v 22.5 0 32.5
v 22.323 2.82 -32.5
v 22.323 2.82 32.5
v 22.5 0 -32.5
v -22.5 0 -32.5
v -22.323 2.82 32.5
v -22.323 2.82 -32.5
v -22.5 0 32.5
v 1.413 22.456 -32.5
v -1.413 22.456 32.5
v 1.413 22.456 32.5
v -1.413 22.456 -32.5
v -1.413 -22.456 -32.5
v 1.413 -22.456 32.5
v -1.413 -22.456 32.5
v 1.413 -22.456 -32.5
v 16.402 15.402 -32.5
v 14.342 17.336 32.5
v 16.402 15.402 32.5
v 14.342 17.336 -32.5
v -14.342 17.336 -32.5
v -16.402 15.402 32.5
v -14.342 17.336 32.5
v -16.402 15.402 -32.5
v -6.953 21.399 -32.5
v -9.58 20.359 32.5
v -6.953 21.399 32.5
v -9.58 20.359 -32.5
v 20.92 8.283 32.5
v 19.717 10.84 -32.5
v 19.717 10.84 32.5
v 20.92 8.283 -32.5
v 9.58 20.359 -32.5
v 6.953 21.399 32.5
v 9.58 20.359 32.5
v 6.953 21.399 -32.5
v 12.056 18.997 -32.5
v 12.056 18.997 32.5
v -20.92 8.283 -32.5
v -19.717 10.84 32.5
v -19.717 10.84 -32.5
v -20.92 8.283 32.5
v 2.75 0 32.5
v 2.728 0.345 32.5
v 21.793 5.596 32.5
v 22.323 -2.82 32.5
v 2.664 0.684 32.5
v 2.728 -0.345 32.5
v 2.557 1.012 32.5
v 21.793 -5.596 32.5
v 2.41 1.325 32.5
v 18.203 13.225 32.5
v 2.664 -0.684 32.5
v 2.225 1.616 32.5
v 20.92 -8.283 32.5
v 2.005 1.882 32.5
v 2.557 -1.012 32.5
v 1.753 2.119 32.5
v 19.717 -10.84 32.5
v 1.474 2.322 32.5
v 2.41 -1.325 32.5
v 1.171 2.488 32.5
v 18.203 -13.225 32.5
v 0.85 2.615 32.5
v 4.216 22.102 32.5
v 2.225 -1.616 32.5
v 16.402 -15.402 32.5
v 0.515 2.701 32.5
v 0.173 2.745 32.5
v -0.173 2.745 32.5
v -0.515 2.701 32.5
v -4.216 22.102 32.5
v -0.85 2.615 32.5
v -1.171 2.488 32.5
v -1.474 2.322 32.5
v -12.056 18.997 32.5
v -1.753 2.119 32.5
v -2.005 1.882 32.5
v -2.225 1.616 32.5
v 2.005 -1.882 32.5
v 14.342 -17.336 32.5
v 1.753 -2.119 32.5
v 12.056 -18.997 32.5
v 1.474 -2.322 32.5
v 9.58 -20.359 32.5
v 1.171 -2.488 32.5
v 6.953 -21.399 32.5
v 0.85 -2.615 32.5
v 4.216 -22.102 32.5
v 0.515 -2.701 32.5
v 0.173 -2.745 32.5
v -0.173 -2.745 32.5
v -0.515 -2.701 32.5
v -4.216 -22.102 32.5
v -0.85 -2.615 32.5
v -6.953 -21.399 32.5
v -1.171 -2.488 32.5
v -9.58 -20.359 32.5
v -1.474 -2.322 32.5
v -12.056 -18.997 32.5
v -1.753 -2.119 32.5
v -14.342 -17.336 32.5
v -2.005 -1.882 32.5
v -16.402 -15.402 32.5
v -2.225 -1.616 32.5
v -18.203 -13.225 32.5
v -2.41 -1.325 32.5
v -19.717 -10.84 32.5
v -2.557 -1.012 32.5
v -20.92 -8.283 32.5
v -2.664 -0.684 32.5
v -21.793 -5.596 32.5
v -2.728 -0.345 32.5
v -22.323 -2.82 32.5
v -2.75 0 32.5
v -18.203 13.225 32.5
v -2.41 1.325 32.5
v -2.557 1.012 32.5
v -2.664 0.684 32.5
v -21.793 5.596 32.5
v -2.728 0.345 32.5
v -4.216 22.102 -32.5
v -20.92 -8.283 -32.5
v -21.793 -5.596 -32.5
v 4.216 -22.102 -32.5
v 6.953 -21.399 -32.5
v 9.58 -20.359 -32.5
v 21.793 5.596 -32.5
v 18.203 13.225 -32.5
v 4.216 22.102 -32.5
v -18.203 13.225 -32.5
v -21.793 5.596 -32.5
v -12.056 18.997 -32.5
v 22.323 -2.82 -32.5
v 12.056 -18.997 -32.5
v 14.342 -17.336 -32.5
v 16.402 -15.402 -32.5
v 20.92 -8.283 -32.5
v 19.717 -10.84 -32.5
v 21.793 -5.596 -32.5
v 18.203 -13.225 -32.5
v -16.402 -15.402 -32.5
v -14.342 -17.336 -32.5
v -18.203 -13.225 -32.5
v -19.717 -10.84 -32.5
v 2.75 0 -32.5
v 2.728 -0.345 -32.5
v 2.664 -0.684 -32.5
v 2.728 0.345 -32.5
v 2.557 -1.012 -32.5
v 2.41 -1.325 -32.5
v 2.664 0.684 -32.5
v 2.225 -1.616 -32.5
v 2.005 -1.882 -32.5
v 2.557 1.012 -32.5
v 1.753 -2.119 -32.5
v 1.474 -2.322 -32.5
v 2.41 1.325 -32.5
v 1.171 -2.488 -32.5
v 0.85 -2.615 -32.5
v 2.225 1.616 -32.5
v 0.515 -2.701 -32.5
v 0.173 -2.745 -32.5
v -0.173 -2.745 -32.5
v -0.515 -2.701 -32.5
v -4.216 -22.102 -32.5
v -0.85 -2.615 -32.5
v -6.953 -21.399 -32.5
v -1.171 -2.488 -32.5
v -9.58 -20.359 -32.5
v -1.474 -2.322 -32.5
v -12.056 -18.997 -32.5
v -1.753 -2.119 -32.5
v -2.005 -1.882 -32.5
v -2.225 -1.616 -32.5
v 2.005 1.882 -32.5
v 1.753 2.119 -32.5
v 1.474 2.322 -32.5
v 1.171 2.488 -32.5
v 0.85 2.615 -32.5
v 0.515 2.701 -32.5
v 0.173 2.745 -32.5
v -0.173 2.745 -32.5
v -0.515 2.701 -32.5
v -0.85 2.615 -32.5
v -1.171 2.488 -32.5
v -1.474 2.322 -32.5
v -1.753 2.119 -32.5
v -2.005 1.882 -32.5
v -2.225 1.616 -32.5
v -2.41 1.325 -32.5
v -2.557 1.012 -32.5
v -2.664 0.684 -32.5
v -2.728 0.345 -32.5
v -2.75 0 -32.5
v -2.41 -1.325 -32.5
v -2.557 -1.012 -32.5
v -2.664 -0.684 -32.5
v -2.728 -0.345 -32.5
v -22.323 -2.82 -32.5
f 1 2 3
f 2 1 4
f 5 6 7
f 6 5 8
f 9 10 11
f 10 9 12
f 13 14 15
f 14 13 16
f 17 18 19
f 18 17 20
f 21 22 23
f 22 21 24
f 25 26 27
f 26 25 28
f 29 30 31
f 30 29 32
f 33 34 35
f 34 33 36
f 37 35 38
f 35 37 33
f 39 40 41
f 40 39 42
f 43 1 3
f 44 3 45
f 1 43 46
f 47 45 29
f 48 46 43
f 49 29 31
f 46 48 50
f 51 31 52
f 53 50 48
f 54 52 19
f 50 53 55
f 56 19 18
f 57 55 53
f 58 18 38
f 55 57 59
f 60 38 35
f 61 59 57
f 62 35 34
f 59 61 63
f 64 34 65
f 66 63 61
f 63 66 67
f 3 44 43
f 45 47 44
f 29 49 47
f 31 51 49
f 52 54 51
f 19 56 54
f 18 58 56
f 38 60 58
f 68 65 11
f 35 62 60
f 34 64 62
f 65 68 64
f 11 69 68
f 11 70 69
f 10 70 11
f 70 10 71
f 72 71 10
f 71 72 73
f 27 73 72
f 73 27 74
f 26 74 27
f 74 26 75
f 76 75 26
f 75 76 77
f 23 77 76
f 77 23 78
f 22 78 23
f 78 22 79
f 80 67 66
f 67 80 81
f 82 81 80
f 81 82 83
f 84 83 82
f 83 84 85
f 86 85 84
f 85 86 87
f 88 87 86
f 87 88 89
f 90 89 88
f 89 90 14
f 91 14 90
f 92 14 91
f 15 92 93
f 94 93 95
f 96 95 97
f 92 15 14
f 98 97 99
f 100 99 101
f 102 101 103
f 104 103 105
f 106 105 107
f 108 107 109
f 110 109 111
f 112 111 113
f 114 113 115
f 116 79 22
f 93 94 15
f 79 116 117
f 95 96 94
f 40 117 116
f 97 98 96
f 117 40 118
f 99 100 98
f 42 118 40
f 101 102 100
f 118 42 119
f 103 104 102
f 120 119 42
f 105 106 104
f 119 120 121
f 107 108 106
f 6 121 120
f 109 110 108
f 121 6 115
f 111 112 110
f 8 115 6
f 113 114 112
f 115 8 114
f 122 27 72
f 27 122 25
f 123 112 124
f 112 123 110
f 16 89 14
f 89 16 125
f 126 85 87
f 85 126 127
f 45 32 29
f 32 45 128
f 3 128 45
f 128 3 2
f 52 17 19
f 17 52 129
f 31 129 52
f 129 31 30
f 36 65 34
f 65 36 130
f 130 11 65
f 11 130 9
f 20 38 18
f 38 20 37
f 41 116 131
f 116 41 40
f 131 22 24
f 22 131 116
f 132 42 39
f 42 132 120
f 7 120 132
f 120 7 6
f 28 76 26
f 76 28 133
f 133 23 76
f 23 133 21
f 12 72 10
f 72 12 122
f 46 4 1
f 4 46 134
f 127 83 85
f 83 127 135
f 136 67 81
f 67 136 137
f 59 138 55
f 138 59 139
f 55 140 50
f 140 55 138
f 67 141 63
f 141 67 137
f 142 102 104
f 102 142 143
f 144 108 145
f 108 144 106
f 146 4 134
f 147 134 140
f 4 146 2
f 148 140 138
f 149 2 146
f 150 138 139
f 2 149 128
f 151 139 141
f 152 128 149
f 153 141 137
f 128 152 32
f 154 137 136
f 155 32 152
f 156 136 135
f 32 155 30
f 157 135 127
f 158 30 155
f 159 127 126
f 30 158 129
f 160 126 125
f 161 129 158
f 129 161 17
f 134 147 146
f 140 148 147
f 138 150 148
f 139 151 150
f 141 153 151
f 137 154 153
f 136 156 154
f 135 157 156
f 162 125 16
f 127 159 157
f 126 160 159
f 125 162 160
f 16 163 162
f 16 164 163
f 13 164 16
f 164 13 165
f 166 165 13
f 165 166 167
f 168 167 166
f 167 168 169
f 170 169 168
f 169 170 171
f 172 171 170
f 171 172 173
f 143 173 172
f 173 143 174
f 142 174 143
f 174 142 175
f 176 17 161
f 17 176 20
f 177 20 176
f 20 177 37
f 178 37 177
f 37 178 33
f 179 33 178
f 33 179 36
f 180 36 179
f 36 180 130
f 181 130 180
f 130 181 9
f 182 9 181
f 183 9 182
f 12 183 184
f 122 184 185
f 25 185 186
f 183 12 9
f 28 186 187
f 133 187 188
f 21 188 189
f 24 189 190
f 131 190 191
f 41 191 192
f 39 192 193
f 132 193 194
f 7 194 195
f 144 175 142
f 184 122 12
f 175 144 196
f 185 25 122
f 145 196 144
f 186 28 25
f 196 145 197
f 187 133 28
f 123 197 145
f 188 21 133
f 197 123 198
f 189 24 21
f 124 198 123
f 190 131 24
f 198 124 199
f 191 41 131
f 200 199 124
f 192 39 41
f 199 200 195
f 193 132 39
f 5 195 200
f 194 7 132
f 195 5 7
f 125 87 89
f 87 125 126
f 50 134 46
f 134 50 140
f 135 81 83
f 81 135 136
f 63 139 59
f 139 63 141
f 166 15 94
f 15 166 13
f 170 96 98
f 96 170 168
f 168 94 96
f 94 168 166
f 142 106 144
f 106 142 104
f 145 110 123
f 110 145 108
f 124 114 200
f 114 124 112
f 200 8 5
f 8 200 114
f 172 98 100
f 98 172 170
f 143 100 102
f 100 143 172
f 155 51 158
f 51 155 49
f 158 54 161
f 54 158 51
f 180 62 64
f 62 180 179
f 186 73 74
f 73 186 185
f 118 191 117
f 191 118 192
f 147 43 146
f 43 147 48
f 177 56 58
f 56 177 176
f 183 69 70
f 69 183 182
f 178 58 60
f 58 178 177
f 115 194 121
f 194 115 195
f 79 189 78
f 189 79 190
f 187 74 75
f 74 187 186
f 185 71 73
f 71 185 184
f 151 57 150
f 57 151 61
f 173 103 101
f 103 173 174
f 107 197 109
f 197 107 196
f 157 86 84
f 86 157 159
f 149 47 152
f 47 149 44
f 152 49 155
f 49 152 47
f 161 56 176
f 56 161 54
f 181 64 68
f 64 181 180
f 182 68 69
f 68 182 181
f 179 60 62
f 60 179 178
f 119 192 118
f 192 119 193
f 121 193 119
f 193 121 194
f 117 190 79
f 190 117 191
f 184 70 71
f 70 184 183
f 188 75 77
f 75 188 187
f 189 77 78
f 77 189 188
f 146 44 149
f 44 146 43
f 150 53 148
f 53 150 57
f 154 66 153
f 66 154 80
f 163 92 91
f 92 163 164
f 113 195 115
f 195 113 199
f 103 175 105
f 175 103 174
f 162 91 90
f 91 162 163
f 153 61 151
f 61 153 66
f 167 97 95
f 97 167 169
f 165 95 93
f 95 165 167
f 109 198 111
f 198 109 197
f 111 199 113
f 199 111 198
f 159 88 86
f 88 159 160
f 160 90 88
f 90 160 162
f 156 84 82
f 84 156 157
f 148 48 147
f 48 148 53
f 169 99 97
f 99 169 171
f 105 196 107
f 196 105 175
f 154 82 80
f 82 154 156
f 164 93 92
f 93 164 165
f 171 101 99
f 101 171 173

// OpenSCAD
$fn = 50;


difference() {
	union() {
		translate(v = [0, 0, -32.5000000000]) {
			cylinder(h = 65, r = 22.5000000000);
		}
	}
	union() {
		translate(v = [0, 0, -100.0000000000]) {
			cylinder(h = 200, r = 2.7500000000);
		}
	}
}
